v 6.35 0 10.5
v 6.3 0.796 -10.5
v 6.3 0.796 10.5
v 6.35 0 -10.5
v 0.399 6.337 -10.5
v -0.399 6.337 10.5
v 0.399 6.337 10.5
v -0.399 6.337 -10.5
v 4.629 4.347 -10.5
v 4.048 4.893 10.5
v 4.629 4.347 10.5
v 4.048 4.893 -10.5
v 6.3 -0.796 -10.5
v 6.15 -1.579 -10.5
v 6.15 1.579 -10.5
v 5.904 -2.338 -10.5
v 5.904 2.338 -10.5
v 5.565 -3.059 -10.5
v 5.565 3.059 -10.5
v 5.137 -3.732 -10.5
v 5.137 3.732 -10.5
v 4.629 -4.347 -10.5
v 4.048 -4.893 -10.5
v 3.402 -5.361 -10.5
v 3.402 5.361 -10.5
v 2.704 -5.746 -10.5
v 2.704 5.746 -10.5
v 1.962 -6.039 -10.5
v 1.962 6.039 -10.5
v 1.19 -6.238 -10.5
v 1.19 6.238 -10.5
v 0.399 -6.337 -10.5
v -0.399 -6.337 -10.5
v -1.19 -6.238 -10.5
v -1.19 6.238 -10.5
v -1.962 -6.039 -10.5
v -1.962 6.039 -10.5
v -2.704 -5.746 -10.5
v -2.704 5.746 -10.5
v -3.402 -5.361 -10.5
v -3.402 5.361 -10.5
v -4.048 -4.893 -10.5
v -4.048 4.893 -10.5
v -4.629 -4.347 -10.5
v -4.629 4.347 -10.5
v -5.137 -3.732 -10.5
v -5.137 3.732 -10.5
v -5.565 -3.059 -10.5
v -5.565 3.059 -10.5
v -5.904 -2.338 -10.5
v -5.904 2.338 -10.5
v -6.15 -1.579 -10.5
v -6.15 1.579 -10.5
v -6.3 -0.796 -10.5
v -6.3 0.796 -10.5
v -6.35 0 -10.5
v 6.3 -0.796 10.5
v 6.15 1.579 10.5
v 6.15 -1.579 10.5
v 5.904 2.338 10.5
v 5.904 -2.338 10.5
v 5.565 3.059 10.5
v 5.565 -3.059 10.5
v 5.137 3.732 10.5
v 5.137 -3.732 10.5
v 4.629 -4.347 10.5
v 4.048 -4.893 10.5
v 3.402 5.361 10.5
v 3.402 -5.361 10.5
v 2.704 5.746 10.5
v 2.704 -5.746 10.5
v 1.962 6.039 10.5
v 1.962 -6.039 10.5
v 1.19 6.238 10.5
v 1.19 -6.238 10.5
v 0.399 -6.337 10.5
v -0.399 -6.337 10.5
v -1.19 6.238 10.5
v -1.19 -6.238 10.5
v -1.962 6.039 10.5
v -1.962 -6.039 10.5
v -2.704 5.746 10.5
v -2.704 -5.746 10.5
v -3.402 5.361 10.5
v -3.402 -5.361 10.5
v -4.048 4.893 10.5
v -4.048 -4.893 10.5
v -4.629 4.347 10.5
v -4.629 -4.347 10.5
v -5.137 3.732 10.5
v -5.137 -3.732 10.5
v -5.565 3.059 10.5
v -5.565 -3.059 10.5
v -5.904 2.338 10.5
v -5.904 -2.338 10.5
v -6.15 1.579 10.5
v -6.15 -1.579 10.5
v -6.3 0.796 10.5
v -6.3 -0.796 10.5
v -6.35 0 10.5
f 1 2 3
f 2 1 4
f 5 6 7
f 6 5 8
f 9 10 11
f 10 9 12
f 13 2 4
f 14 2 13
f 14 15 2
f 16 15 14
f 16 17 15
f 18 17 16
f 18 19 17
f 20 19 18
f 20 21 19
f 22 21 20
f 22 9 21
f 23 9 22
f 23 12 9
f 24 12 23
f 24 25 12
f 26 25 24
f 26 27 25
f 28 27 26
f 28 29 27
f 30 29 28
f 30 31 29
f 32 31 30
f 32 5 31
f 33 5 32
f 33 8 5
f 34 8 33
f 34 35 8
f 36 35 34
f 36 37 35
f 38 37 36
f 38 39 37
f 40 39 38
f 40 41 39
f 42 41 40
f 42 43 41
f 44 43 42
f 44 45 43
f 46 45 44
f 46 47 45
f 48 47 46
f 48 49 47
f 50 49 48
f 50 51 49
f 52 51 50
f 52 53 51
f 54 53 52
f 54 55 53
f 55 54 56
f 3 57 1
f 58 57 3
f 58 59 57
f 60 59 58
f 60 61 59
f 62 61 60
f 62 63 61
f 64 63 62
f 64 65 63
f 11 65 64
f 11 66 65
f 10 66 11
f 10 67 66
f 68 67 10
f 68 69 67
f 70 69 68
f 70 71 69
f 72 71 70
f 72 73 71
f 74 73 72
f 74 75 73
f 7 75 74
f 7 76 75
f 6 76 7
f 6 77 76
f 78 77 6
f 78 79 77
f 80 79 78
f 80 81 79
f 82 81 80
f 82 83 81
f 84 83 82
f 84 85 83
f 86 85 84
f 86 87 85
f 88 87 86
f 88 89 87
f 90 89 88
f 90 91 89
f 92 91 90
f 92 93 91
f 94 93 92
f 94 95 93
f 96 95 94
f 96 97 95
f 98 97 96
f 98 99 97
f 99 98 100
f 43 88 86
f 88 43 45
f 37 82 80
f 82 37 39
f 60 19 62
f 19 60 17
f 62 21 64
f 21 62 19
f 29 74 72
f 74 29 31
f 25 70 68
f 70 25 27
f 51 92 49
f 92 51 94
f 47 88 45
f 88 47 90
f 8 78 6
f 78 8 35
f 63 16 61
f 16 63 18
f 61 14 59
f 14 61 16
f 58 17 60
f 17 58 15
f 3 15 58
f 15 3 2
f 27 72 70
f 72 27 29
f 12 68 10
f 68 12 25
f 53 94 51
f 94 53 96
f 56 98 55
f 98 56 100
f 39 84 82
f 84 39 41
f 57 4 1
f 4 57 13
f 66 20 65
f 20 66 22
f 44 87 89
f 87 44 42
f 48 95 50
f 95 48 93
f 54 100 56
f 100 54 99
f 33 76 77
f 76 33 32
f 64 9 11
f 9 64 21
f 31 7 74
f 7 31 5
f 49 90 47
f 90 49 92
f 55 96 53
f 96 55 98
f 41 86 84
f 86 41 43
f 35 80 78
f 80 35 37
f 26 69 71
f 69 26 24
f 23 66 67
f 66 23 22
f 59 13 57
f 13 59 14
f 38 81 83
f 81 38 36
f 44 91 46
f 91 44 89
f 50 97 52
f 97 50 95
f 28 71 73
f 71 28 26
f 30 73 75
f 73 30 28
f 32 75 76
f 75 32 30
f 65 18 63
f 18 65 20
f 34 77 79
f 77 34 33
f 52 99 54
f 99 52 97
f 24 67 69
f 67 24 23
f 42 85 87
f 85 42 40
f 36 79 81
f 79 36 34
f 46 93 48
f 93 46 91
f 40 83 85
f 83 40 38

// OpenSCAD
$fn = 50;


difference() {
	union() {
		translate(v = [0, 0, -10.5000000000]) {
			cylinder(h = 21, r = 6.3500000000);
		}
	}
	union() {
		translate(v = [0, 0, -100.0000000000]) {
			cylinder(h = 200, r = 0);
		}
	}
}
